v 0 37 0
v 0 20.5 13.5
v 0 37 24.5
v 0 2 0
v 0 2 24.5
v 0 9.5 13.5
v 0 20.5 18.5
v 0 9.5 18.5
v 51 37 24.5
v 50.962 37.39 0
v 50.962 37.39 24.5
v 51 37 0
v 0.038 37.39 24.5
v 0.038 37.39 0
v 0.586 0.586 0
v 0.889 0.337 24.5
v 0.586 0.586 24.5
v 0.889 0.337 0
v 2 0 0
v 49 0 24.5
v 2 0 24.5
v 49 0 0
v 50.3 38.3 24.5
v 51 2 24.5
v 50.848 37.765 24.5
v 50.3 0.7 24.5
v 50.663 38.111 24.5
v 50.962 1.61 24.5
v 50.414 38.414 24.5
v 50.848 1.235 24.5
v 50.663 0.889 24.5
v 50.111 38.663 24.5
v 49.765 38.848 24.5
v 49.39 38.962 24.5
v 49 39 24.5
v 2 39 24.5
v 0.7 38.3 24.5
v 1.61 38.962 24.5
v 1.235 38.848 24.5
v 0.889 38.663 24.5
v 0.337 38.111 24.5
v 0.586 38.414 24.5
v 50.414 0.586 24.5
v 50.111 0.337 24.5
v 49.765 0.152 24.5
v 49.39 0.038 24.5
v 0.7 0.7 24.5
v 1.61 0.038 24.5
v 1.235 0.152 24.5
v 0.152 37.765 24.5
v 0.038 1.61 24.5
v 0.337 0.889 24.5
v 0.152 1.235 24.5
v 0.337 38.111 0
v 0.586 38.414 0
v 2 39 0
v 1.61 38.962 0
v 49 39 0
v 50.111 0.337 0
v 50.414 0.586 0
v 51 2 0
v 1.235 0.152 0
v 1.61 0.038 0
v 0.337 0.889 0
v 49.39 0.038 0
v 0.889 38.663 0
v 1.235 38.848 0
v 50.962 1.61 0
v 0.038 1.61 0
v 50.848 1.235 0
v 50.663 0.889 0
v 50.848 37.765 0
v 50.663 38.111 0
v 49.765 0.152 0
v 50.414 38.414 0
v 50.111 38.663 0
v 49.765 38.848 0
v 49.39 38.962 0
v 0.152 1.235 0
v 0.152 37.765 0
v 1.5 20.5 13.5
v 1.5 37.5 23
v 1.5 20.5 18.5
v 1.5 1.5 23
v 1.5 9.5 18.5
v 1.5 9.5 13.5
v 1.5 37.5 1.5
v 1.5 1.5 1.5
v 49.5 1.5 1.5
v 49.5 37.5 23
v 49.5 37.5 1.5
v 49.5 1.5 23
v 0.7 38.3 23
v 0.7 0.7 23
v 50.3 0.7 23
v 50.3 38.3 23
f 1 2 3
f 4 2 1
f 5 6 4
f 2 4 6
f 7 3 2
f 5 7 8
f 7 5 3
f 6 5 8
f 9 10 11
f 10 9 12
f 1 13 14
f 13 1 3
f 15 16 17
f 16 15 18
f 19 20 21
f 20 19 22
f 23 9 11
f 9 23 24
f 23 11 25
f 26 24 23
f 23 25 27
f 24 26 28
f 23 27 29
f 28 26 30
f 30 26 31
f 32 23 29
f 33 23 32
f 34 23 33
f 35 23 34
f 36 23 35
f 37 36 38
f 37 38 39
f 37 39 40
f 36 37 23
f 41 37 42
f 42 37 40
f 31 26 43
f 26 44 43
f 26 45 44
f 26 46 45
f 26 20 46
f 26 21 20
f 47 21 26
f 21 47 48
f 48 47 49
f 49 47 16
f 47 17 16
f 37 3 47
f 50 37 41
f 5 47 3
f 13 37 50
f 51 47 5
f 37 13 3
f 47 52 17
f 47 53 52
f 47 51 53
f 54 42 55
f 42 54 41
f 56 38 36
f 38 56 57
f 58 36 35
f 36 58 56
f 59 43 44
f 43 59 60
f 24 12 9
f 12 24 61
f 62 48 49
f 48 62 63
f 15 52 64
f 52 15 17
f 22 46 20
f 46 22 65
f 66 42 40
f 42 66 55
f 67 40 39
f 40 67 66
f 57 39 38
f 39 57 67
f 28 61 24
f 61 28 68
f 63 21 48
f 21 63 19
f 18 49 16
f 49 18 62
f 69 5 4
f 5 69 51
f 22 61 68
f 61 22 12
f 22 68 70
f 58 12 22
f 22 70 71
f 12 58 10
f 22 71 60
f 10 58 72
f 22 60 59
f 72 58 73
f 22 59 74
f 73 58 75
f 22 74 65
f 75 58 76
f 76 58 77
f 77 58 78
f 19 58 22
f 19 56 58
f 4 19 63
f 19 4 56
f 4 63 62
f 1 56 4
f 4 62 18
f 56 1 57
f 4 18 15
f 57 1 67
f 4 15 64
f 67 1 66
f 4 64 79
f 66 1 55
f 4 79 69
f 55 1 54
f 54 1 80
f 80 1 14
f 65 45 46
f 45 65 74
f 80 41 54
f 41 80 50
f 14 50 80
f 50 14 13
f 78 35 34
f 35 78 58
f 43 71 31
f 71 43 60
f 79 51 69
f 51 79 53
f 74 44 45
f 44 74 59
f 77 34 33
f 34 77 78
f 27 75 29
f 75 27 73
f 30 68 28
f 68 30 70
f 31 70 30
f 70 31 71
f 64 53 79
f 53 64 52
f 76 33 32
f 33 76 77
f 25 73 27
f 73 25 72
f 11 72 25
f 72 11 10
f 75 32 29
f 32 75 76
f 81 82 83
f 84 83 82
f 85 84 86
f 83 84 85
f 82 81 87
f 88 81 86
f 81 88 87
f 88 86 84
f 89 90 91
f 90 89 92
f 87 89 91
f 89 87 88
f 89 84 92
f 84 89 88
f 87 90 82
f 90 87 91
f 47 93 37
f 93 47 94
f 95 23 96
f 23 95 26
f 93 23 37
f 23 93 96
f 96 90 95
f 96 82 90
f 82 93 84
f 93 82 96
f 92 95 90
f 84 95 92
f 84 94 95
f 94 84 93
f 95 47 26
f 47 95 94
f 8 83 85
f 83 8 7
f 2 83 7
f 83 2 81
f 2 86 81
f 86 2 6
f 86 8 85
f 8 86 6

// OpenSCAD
// =====================================================
// ESP32 SuperMini 外壳
//
// 结构:
//   - 主体: 顶部开口盒子, 顶部内壁预留阴角用于扣盖
//   - 盖子: 板 + 凸舌, 凸舌插入阴角定位
//
// 打印建议:
//   - 主体: 敞口朝上打印, 无需支撑
//   - 盖子: 平面朝下打印, 无需支撑
//   - 材料: PLA/PETG, 0.2mm 层高, 3 回墙
// =====================================================

// ============== 可调参数 ==============

// 内腔尺寸 (盒内)
INNER_L = 48;    // 内腔长度 (mm)
INNER_W = 36;    // 内腔宽度 (mm), USB 开口所在侧
INNER_H = 23;    // 内腔高度 (mm)

// 壁厚
WALL = 1.5;      // 壁厚 (mm)

// USB-C 开口 (从盒内测量, 位于 X=0 窄板即 INNER_W=36mm 侧)
//   "水平" 指面向该侧板时的左右方向 (对应 Y 轴)
//   "垂直" 指面向该侧板时的上下方向 (对应 Z 轴)
USB_H1 = 9;      // 水平起始位置 (mm)
USB_H2 = 20;     // 水平结束位置 (mm)
USB_V1 = 12.5;   // 垂直起始位置, 从底面 (mm)
USB_V2 = 17.5;   // 垂直结束位置, 从底面 (mm)

// 内阴角 (顶部扣盖台阶)
LIP_H = 1.5;     // 阴角高度 (mm)
LIP_D = 0.8;     // 阴角深度, 内壁后退量 (mm)

// 盖子
LID_T = 1.5;     // 盖板厚度 (mm)

// 盖子开缝 (从盒内测量)
SLOT_X1 = 26;    // 缝隙 X 起始 (mm)
SLOT_Y1 = 6;     // 缝隙 Y 起始 (mm)
SLOT_Y2 = 11;    // 缝隙 Y 结束 (mm)

// 间隙余量
TOL = 0.2;       // 单侧间隙 (mm)

// 圆角
CORNER_R = 2;    // 圆角半径 (0 = 直角)

// ============== 计算值 ==============

OUTER_L = INNER_L + 2 * WALL;
OUTER_W = INNER_W + 2 * WALL;
OUTER_H = INNER_H + WALL;  // 底板壁厚 + 内腔

// USB 开口尺寸 (由参数联动)
USB_CUT_HW = USB_H2 - USB_H1;       // 开口水平宽度
USB_CUT_VH = USB_V2 - USB_V1;       // 开口垂直高度

// 阴角台阶内尺寸 (由参数联动)
LIP_INNER_L = INNER_L + 2 * LIP_D; // 阴角处内腔长度
LIP_INNER_W = INNER_W + 2 * LIP_D; // 阴角处内腔宽度

// 盖子凸舌尺寸 (由参数联动)
TONGUE_L = LIP_INNER_L - 2 * TOL;  // 凸舌长度
TONGUE_W = LIP_INNER_W - 2 * TOL;  // 凸舌宽度
TONGUE_H = LIP_H - TOL;            // 凸舌高度

// 盖子开缝尺寸 (由参数联动)
SLOT_X2 = OUTER_L;                  // 缝隙延伸到盖子右边缘
SLOT_CUT_L = SLOT_X2 - (WALL + SLOT_X1);  // 缝隙长度
SLOT_CUT_W = SLOT_Y2 - SLOT_Y1;    // 缝隙宽度

$fn = 32;

// ============== 渲染控制 ==============
// "box" = 仅主体, "lid" = 仅盖子, "all" = 装配, "exploded" = 分解
PART = "box";

// =====================================================
// 公共: 圆角矩形
// =====================================================

module rounded_box(l, w, h, r) {
  if (r <= 0) {
    cube([l, w, h]);
  } else {
    hull() {
      translate([r, r, 0])       cylinder(r=r, h=h);
      translate([l-r, r, 0])     cylinder(r=r, h=h);
      translate([r, w-r, 0])     cylinder(r=r, h=h);
      translate([l-r, w-r, 0])   cylinder(r=r, h=h);
    }
  }
}

// =====================================================
// 主体 (顶部开口盒子 + 内阴角)
// =====================================================

module box_body() {
  difference() {
    // 外壳
    rounded_box(OUTER_L, OUTER_W, OUTER_H, CORNER_R);

    // 主内腔 (从底板顶面到盒子顶部)
    translate([WALL, WALL, WALL])
      cube([INNER_L, INNER_W, INNER_H + 1]);

    // 顶部内阴角 - 内壁后退 LIP_D 形成台阶
    translate([WALL - LIP_D, WALL - LIP_D, WALL + INNER_H - LIP_H])
      cube([LIP_INNER_L, LIP_INNER_W, LIP_H + 1]);
  }
}

module box_usb_cutout() {
  // USB-C 开口 (X=0 侧板, 即 INNER_W=36mm 窄板)
  //   水平方向 → Y 轴, 垂直方向 → Z 轴, 切穿 X 方向壁厚
  translate([-1, WALL + USB_H1, WALL + USB_V1])
    cube([WALL + 2, USB_CUT_HW, USB_CUT_VH]);
}

module box() {
  difference() {
    box_body();
    box_usb_cutout();
  }
}

// =====================================================
// 盖子 (盖板 + 凸舌)
// =====================================================

module lid() {
  difference() {
    union() {
      // 盖板 (覆盖主体顶部)
      rounded_box(OUTER_L, OUTER_W, LID_T, CORNER_R);

      // 凸舌 (插入阴角定位)
      translate([WALL - LIP_D + TOL, WALL - LIP_D + TOL, -TONGUE_H])
        cube([TONGUE_L, TONGUE_W, TONGUE_H]);
    }

    // 开缝 (贯穿盖板 + 凸舌)
    translate([WALL + SLOT_X1, WALL + SLOT_Y1, -TONGUE_H - 1])
      cube([SLOT_CUT_L, SLOT_CUT_W, LID_T + TONGUE_H + 2]);
  }
}

// =====================================================
// 渲染
// =====================================================

if (PART == "box") {
  box();
}
else if (PART == "lid") {
  lid();
}
else if (PART == "exploded") {
  box();
  translate([0, 0, OUTER_H + 10])
    lid();
}
else {
  // 完整装配
  box();
  translate([0, 0, OUTER_H])
    lid();
}
